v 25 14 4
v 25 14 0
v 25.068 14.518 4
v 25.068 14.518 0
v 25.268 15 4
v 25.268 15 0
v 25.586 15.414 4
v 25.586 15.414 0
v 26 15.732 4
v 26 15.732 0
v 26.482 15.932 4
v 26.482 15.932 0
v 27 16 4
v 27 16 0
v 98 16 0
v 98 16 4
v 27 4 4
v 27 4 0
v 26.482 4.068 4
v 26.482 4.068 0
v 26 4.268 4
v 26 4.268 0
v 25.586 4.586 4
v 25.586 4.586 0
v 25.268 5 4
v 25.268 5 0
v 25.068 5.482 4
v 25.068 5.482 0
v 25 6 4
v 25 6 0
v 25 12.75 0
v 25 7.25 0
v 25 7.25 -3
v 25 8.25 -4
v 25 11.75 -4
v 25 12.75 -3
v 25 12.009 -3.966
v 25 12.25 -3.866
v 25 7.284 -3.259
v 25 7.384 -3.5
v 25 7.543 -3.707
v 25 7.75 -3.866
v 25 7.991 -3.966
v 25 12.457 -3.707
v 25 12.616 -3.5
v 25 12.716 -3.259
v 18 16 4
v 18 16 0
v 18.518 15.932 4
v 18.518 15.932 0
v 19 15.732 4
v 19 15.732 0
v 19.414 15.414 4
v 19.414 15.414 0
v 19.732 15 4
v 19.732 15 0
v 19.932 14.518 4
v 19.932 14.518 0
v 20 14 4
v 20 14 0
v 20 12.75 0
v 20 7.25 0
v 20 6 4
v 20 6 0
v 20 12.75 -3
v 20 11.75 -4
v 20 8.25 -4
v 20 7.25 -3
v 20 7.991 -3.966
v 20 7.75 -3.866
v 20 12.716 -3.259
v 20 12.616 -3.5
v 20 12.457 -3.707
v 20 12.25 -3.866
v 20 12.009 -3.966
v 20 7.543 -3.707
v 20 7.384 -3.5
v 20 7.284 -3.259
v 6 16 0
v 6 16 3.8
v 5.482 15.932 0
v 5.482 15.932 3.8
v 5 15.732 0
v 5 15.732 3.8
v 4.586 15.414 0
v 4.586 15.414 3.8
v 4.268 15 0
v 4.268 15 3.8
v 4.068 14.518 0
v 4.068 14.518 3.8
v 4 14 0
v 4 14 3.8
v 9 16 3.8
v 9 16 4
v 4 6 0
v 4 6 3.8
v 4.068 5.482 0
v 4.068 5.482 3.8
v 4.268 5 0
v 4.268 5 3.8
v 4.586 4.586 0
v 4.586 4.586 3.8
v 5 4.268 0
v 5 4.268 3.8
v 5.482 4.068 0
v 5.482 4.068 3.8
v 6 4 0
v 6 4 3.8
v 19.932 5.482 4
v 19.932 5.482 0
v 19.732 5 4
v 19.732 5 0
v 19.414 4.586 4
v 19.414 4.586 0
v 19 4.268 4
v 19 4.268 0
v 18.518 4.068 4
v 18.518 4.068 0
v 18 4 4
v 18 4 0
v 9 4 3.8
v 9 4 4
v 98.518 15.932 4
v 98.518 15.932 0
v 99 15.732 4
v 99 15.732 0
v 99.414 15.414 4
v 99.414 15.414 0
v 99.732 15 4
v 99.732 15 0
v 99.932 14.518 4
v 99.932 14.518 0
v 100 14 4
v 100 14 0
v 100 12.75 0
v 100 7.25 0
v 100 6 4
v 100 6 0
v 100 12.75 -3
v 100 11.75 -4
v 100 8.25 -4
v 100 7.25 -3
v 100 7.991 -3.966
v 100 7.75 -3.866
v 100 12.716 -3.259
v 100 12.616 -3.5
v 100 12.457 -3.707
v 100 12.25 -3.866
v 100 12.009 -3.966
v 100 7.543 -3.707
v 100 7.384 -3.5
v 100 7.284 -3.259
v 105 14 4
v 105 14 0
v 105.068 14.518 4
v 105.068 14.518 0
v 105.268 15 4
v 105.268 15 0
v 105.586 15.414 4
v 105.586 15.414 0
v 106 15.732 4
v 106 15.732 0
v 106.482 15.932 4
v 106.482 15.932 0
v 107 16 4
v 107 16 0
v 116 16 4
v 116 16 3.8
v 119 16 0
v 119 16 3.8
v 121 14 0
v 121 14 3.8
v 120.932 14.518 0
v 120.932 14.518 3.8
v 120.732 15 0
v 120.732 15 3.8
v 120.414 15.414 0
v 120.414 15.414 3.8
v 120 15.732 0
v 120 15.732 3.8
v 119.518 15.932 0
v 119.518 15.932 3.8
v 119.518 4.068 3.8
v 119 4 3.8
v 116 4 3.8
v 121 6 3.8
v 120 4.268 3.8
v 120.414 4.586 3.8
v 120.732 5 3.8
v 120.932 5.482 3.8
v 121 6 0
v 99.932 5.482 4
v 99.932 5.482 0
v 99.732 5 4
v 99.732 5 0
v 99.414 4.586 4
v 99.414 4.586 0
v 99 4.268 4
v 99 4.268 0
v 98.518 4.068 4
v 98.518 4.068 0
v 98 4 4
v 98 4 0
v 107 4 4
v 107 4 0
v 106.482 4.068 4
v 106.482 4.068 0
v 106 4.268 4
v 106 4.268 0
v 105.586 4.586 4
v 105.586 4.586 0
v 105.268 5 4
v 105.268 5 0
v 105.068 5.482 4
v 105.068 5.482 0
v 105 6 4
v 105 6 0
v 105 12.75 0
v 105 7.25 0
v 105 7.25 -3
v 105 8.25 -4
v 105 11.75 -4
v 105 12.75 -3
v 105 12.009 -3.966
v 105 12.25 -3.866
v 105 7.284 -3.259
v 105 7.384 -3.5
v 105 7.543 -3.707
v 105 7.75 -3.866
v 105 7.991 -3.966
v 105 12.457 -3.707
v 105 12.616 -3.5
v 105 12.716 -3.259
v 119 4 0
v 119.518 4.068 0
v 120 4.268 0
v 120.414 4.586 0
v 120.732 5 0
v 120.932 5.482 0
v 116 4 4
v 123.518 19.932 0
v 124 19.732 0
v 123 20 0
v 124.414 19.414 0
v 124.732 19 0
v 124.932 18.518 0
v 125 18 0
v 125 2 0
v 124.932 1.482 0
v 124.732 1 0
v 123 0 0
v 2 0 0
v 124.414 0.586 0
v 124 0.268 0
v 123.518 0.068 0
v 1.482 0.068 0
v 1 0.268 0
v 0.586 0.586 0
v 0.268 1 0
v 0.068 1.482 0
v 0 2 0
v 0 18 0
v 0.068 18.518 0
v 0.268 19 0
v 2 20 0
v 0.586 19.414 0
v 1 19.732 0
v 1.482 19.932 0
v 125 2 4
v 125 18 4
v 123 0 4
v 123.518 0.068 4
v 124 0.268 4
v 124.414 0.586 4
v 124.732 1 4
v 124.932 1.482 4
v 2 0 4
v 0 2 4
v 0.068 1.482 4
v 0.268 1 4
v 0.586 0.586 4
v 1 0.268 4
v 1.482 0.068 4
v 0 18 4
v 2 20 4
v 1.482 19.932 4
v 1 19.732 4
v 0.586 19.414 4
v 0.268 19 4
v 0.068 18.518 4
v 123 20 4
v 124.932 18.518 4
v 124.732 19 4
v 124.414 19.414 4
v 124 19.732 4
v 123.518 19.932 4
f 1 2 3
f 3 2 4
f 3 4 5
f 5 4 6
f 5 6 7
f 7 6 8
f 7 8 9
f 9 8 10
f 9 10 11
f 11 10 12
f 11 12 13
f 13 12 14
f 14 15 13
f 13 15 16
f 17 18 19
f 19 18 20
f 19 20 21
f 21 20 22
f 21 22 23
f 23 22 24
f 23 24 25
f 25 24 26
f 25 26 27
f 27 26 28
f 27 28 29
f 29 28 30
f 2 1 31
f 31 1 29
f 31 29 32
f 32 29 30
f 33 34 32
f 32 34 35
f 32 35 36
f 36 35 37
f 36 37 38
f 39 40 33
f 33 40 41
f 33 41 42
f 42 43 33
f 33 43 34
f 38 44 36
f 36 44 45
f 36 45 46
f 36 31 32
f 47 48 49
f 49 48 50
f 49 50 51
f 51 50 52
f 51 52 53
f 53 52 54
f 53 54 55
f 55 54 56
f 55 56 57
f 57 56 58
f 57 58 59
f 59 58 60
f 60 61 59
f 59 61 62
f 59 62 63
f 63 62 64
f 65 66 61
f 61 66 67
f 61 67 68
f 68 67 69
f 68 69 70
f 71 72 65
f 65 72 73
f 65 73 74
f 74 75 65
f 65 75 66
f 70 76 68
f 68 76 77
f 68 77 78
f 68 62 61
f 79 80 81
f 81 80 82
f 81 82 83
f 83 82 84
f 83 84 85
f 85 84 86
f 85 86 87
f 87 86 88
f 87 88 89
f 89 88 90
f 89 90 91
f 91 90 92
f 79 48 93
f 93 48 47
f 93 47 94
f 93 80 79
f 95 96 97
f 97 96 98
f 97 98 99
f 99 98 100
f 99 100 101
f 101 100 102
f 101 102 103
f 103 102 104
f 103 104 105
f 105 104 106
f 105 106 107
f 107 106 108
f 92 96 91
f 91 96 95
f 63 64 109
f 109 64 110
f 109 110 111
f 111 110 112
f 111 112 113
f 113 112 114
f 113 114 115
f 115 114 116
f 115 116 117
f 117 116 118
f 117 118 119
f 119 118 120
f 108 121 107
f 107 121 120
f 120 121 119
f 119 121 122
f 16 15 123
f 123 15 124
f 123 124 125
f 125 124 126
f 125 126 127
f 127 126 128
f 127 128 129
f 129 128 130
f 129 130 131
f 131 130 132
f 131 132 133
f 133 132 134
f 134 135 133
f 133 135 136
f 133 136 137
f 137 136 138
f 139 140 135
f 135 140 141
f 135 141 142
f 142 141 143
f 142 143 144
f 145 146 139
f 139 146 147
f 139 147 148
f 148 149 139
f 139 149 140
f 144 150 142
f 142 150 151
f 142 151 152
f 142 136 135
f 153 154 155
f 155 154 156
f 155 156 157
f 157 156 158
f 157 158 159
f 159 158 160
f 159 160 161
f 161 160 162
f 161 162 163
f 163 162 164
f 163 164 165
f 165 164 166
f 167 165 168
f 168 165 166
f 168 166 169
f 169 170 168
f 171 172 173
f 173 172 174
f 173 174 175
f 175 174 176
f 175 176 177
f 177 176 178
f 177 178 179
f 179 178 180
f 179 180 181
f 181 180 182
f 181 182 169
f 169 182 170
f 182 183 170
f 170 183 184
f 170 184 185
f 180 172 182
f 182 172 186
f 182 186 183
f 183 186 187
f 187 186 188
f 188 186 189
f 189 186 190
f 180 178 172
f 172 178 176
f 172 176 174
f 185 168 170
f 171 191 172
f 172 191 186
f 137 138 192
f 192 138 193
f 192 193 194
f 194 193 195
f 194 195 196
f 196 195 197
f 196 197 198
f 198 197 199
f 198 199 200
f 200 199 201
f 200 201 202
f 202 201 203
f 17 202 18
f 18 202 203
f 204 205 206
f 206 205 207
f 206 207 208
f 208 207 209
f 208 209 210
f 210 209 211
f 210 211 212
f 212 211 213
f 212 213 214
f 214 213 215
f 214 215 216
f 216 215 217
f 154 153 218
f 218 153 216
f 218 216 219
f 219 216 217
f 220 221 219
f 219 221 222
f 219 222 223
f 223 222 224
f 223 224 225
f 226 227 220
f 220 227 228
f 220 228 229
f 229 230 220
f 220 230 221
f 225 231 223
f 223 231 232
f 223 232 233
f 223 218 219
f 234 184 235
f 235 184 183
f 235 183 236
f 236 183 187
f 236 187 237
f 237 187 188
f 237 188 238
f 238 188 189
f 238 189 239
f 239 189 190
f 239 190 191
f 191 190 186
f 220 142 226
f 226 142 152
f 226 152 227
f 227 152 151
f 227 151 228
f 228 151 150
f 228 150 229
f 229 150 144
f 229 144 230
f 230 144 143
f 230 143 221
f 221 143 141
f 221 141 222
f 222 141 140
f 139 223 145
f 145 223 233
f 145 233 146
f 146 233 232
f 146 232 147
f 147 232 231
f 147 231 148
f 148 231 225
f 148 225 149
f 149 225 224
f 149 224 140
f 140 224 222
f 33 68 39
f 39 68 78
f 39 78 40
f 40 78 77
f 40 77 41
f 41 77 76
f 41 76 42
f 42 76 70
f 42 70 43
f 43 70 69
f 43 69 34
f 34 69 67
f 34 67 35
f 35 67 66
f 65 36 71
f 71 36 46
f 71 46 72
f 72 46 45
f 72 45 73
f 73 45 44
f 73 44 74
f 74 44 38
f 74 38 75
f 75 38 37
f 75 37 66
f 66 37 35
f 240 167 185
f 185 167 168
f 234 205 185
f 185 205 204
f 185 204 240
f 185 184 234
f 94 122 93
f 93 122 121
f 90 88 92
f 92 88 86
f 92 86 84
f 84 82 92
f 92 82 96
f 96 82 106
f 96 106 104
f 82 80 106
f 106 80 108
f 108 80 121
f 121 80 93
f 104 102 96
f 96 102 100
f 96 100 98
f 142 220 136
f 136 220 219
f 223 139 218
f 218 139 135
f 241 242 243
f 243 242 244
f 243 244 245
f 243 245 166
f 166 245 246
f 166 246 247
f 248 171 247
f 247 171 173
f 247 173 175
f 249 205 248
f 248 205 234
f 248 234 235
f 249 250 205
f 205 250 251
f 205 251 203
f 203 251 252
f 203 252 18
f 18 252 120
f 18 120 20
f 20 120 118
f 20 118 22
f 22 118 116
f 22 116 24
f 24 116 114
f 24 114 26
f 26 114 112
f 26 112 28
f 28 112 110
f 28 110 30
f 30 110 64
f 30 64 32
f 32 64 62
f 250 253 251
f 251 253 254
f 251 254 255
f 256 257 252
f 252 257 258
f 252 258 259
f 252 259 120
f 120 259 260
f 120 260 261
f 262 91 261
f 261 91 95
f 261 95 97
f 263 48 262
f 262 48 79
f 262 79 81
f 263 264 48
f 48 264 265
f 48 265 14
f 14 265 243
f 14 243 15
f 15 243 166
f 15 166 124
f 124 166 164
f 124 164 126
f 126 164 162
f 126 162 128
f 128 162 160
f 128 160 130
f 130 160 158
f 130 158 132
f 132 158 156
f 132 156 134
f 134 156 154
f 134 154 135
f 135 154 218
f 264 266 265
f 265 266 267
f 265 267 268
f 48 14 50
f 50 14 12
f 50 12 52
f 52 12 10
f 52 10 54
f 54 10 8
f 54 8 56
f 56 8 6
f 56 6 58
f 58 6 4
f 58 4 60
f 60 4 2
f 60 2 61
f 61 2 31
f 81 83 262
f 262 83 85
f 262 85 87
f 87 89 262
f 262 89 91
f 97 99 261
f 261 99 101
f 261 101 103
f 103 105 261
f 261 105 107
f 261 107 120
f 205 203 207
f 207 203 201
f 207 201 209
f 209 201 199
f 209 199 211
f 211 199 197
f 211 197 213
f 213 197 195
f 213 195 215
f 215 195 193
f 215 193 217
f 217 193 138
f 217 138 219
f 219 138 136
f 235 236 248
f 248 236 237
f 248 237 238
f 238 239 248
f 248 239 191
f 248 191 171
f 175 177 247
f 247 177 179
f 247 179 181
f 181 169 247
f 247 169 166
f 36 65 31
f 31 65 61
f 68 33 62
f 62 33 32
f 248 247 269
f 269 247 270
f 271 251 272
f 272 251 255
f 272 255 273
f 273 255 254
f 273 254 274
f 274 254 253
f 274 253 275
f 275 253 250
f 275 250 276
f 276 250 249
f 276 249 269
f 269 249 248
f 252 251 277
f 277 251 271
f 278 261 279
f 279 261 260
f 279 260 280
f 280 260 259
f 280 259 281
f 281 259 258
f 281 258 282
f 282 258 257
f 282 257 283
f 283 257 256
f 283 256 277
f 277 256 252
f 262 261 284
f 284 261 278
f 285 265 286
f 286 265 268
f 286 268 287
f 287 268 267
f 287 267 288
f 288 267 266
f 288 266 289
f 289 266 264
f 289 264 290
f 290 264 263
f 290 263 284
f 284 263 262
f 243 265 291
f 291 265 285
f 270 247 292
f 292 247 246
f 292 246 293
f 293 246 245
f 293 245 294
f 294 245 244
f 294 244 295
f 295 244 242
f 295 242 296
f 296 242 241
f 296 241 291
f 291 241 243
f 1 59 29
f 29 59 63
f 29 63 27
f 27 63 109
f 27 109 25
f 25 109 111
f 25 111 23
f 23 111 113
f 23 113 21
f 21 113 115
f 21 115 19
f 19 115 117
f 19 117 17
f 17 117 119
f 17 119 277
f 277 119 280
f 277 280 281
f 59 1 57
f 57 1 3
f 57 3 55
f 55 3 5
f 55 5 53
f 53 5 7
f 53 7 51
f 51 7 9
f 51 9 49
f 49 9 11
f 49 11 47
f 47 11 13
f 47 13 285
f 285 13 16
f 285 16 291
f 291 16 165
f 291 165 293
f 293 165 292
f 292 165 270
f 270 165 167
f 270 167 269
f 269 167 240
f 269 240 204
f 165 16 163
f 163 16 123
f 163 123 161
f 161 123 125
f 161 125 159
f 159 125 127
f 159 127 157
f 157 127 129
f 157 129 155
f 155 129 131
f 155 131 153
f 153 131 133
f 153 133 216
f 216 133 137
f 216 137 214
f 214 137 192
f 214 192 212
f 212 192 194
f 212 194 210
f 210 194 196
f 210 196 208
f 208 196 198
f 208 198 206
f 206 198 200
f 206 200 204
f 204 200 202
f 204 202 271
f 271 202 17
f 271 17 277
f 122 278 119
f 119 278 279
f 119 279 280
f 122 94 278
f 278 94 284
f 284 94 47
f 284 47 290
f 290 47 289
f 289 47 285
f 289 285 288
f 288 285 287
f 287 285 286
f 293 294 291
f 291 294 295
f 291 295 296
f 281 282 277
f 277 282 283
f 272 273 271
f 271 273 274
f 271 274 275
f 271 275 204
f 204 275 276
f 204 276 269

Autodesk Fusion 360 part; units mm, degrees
sketch "Sketch1" plane through (0, 0, 0) normal (0, 0, 1) x (1, 0, 0)
  line L0 (2, 0) -> (123, 0)
  line L1 (125, 2) -> (125, 18)
  line L2 (123, 20) -> (2, 20)
  line L3 (0, 18) -> (0, 2)
  arc A0 (2, 20) -> (0, 18) centre (2, 18) ccw
  arc A1 (0, 2) -> (2, 0) centre (2, 2) ccw
  arc A2 (123, 0) -> (125, 2) centre (123, 2) ccw
  arc A3 (125, 18) -> (123, 20) centre (123, 18) ccw
  line L4 (4, 4) -> (121, 4)
  line L5 (121, 4) -> (121, 16)
  line L6 (121, 16) -> (4, 16)
  line L7 (4, 16) -> (4, 4)
  line L8 (20, 16) -> (25, 16)
  line L9 (25, 16) -> (25, 4)
  line L10 (25, 4) -> (20, 4)
  line L11 (20, 4) -> (20, 16)
  line L12 (62.5, 0) -> (62.5, 20) construction
  line L13 (105, 4) -> (105, 16)
  line L14 (105, 16) -> (100, 16)
  line L15 (100, 4) -> (105, 4)
  line L16 (100, 16) -> (100, 4)
  line L17 (20, 12.75) -> (105, 12.75)
  line L18 (105, 12.75) -> (105, 7.25)
  line L19 (105, 7.25) -> (20, 7.25)
  line L20 (20, 7.25) -> (20, 12.75)
  line L21 (20, 12.75) -> (105, 7.25) construction
  line L22 (105, 12.75) -> (20, 7.25) construction
  line L23 (9, 16) -> (9, 4)
  line L24 (116, 16) -> (116, 4)
  point P0 (125, 0)
  point P1 (0, 20)
  point P2 (62.5, 10)
  dimension "d1" = 125
  dimension "d2" = 20
  dimension "d3" = 2
  dimension "d4" = -4
  dimension "d5" = 5
  dimension "d7" = 80
  dimension "d16" = 5.5
  dimension "d23" = 5
  dimension "d24" = 5
extrude "Extrude1" add sketch "Sketch1" along normal blind 4 contours L0 L1 L2 L3 A0 A1 A2 A3 | L4 L9 L10 L11 L19 | L9 L11 L17 L19 L20 | L6 L8 L9 L11 L17 | L4 L13 L15 L16 L19 | L13 L16 L17 L18 L19 | L6 L13 L14 L16 L17
extrude "Extrude3" add sketch "Sketch1" against normal blind 4 contours L9 L11 L17 L19 L20 | L13 L16 L17 L18 L19
extrude "Extrude4" add sketch "Sketch1" against normal blind 0.2 from surface at 4 contours L4 L6 L7 L23 | L4 L5 L6 L24
fillet "Fillet1" radius 1 4 edges at (22.5, 12.75, -4) (22.5, 7.25, -4) (102.5, 12.75, -4) (102.5, 7.25, -4)
fillet "Fillet2" radius 2 12 edges at (121, 4, 2) (105, 4, 2) (100, 4, 2) (121, 16, 2) (105, 16, 2) (100, 16, 2) (20, 4, 2) (4, 4, 2) (4, 16, 2) (20, 16, 2) (25, 4, 2) (25, 16, 2)
